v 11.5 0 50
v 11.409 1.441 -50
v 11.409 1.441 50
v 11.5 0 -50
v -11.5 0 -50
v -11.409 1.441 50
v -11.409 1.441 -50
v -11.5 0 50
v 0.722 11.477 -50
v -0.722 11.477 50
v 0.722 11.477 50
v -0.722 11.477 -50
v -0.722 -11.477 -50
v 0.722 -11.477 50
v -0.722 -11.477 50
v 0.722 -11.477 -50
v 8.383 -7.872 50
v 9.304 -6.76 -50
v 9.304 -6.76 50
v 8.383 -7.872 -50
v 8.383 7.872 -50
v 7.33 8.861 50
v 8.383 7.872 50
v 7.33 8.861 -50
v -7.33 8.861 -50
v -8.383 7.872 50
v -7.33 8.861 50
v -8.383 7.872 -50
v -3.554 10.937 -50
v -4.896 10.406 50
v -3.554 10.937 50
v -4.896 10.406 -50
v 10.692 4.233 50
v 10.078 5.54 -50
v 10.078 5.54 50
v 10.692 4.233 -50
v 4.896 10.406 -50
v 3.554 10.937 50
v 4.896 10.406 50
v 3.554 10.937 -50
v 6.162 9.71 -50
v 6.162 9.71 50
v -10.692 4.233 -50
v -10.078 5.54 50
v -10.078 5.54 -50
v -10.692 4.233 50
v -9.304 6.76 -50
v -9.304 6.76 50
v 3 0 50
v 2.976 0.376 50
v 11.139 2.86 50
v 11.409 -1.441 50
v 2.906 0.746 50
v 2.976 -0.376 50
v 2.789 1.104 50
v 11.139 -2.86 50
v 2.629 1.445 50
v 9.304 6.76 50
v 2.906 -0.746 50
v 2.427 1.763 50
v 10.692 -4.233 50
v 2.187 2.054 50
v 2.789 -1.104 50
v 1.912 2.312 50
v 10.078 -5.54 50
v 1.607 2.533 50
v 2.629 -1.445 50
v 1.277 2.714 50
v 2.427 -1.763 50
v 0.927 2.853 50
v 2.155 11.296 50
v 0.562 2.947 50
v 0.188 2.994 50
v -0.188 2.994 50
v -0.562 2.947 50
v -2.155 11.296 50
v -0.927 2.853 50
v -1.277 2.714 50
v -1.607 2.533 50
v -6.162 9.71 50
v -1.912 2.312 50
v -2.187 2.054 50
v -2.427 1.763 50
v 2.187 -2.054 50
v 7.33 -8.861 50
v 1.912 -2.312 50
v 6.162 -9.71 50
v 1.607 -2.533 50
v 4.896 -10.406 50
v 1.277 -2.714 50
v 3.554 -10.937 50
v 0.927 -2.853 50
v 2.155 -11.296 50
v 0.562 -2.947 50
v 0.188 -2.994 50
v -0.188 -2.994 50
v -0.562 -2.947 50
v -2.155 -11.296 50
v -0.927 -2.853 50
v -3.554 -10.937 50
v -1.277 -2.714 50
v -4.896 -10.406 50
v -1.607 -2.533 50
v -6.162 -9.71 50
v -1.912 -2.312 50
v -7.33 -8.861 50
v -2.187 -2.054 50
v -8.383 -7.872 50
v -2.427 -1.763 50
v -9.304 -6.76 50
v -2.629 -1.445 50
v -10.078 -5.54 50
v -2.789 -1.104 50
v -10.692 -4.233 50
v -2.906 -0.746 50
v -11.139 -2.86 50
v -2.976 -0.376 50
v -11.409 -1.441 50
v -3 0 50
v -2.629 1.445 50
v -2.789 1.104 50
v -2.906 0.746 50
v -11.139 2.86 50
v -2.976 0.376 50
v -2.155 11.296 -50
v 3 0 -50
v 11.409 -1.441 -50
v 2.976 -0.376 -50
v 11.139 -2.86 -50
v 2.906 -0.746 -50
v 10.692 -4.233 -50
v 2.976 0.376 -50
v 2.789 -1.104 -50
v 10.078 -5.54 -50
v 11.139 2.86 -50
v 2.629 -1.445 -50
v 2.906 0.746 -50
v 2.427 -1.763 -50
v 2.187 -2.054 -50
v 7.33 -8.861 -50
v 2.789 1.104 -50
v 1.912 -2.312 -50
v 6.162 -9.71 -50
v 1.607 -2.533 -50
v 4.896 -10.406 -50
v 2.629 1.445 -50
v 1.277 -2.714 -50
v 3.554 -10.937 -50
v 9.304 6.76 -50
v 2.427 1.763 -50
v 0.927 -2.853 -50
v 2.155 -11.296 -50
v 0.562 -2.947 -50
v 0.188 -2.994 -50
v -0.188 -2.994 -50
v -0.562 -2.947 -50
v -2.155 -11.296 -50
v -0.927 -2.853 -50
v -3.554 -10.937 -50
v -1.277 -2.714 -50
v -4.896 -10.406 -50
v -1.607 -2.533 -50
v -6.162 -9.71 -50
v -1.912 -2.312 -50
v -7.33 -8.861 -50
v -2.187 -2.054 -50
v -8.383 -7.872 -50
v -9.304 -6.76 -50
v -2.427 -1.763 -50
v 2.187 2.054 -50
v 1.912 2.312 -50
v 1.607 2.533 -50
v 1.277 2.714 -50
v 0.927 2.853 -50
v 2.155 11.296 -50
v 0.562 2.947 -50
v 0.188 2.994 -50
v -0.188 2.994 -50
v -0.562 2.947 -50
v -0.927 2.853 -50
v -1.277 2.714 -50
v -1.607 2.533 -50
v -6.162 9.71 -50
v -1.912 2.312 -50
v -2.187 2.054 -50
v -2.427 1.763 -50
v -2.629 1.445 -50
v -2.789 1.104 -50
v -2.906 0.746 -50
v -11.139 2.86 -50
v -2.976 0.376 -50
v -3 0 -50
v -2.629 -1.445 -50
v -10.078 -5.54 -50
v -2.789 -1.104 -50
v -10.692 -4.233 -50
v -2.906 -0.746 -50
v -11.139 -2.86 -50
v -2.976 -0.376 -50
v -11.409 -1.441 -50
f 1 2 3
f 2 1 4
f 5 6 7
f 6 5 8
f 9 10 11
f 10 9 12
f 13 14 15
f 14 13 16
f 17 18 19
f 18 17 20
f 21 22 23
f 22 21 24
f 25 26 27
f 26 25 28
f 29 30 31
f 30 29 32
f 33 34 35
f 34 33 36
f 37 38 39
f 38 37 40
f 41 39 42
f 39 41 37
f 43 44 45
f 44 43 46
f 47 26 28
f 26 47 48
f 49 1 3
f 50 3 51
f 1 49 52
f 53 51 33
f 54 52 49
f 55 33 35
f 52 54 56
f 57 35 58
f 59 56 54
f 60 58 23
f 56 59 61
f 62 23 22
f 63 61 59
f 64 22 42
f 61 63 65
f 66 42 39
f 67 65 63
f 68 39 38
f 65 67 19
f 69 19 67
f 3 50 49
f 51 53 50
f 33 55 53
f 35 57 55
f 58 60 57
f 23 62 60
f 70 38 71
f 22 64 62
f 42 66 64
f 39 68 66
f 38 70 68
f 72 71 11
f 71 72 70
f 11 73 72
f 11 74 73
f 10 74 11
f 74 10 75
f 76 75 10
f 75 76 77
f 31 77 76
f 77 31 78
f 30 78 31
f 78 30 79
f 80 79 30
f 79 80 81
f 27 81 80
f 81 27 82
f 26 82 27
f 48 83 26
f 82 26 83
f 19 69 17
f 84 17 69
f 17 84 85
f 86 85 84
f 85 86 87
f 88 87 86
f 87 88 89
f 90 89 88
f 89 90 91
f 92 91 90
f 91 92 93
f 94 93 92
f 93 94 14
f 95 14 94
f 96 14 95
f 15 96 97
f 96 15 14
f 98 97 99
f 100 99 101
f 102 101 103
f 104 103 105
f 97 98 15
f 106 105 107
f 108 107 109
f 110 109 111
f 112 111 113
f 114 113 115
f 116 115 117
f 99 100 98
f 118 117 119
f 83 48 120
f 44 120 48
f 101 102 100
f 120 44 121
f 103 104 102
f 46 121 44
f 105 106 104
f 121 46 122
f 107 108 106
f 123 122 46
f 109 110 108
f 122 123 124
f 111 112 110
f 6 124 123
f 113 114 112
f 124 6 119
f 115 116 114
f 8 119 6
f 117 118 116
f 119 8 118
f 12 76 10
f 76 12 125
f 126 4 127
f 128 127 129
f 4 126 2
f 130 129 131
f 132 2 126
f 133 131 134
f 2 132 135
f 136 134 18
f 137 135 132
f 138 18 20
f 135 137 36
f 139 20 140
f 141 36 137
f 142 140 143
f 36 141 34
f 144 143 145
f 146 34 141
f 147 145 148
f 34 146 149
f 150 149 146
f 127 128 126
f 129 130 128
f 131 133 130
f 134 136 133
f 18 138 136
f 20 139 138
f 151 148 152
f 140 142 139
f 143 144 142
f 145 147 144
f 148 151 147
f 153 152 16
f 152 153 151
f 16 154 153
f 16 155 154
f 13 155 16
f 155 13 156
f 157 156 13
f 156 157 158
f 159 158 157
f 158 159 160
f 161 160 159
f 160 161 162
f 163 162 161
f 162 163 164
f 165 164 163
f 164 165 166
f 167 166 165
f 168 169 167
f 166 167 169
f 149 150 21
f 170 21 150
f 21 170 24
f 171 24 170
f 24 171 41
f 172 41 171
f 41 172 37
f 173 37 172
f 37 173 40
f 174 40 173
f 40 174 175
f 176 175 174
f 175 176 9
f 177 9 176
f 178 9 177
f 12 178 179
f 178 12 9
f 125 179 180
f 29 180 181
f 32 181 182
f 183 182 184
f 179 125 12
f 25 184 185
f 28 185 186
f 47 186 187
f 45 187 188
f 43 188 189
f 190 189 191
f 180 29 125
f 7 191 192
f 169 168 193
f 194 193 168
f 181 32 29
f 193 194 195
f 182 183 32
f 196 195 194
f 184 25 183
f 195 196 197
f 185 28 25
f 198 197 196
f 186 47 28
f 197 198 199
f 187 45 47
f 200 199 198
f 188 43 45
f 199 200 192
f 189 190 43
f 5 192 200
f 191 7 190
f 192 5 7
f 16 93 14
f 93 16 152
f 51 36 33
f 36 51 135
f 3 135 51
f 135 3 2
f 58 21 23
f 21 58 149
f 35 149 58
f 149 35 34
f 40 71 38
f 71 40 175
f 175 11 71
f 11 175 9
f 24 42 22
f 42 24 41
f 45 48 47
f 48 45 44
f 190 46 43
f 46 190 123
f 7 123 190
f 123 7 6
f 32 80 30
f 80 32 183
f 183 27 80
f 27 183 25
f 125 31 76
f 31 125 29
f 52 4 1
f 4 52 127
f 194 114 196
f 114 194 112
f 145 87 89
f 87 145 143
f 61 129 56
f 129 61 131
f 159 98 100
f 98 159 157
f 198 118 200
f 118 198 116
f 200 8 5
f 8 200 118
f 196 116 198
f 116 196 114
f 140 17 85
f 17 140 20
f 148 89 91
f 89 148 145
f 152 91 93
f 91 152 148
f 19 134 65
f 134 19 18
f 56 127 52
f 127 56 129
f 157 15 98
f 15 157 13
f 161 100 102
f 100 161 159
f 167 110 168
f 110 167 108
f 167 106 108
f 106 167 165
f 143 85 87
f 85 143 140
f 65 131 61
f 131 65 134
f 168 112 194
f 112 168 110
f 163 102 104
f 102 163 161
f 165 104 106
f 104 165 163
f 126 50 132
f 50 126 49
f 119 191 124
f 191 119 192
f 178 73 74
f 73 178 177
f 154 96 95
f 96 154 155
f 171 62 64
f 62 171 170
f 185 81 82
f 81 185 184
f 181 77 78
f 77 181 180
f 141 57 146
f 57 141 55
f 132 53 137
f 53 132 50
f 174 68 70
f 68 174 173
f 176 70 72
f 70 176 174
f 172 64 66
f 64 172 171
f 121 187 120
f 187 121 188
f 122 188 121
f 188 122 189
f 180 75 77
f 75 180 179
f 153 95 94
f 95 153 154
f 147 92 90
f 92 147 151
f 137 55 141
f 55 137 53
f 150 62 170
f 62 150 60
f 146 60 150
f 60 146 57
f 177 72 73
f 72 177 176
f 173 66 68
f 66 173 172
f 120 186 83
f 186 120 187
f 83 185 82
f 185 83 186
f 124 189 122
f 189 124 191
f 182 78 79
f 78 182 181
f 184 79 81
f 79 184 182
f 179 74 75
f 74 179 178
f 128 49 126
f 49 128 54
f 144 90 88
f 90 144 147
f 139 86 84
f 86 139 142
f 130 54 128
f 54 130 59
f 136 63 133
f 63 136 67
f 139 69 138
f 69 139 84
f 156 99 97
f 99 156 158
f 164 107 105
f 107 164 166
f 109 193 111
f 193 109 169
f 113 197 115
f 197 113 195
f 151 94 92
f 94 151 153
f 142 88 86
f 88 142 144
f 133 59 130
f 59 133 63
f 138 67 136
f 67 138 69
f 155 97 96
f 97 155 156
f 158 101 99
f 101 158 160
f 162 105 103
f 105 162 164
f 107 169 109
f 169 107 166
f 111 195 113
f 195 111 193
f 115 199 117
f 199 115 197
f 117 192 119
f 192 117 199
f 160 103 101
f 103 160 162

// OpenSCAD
$fn = 50;


difference() {
	union() {
		translate(v = [0, 0, -50.0000000000]) {
			cylinder(h = 100, r = 11.5000000000);
		}
	}
	union() {
		translate(v = [0, 0, -100.0000000000]) {
			cylinder(h = 200, r = 3);
		}
	}
}
